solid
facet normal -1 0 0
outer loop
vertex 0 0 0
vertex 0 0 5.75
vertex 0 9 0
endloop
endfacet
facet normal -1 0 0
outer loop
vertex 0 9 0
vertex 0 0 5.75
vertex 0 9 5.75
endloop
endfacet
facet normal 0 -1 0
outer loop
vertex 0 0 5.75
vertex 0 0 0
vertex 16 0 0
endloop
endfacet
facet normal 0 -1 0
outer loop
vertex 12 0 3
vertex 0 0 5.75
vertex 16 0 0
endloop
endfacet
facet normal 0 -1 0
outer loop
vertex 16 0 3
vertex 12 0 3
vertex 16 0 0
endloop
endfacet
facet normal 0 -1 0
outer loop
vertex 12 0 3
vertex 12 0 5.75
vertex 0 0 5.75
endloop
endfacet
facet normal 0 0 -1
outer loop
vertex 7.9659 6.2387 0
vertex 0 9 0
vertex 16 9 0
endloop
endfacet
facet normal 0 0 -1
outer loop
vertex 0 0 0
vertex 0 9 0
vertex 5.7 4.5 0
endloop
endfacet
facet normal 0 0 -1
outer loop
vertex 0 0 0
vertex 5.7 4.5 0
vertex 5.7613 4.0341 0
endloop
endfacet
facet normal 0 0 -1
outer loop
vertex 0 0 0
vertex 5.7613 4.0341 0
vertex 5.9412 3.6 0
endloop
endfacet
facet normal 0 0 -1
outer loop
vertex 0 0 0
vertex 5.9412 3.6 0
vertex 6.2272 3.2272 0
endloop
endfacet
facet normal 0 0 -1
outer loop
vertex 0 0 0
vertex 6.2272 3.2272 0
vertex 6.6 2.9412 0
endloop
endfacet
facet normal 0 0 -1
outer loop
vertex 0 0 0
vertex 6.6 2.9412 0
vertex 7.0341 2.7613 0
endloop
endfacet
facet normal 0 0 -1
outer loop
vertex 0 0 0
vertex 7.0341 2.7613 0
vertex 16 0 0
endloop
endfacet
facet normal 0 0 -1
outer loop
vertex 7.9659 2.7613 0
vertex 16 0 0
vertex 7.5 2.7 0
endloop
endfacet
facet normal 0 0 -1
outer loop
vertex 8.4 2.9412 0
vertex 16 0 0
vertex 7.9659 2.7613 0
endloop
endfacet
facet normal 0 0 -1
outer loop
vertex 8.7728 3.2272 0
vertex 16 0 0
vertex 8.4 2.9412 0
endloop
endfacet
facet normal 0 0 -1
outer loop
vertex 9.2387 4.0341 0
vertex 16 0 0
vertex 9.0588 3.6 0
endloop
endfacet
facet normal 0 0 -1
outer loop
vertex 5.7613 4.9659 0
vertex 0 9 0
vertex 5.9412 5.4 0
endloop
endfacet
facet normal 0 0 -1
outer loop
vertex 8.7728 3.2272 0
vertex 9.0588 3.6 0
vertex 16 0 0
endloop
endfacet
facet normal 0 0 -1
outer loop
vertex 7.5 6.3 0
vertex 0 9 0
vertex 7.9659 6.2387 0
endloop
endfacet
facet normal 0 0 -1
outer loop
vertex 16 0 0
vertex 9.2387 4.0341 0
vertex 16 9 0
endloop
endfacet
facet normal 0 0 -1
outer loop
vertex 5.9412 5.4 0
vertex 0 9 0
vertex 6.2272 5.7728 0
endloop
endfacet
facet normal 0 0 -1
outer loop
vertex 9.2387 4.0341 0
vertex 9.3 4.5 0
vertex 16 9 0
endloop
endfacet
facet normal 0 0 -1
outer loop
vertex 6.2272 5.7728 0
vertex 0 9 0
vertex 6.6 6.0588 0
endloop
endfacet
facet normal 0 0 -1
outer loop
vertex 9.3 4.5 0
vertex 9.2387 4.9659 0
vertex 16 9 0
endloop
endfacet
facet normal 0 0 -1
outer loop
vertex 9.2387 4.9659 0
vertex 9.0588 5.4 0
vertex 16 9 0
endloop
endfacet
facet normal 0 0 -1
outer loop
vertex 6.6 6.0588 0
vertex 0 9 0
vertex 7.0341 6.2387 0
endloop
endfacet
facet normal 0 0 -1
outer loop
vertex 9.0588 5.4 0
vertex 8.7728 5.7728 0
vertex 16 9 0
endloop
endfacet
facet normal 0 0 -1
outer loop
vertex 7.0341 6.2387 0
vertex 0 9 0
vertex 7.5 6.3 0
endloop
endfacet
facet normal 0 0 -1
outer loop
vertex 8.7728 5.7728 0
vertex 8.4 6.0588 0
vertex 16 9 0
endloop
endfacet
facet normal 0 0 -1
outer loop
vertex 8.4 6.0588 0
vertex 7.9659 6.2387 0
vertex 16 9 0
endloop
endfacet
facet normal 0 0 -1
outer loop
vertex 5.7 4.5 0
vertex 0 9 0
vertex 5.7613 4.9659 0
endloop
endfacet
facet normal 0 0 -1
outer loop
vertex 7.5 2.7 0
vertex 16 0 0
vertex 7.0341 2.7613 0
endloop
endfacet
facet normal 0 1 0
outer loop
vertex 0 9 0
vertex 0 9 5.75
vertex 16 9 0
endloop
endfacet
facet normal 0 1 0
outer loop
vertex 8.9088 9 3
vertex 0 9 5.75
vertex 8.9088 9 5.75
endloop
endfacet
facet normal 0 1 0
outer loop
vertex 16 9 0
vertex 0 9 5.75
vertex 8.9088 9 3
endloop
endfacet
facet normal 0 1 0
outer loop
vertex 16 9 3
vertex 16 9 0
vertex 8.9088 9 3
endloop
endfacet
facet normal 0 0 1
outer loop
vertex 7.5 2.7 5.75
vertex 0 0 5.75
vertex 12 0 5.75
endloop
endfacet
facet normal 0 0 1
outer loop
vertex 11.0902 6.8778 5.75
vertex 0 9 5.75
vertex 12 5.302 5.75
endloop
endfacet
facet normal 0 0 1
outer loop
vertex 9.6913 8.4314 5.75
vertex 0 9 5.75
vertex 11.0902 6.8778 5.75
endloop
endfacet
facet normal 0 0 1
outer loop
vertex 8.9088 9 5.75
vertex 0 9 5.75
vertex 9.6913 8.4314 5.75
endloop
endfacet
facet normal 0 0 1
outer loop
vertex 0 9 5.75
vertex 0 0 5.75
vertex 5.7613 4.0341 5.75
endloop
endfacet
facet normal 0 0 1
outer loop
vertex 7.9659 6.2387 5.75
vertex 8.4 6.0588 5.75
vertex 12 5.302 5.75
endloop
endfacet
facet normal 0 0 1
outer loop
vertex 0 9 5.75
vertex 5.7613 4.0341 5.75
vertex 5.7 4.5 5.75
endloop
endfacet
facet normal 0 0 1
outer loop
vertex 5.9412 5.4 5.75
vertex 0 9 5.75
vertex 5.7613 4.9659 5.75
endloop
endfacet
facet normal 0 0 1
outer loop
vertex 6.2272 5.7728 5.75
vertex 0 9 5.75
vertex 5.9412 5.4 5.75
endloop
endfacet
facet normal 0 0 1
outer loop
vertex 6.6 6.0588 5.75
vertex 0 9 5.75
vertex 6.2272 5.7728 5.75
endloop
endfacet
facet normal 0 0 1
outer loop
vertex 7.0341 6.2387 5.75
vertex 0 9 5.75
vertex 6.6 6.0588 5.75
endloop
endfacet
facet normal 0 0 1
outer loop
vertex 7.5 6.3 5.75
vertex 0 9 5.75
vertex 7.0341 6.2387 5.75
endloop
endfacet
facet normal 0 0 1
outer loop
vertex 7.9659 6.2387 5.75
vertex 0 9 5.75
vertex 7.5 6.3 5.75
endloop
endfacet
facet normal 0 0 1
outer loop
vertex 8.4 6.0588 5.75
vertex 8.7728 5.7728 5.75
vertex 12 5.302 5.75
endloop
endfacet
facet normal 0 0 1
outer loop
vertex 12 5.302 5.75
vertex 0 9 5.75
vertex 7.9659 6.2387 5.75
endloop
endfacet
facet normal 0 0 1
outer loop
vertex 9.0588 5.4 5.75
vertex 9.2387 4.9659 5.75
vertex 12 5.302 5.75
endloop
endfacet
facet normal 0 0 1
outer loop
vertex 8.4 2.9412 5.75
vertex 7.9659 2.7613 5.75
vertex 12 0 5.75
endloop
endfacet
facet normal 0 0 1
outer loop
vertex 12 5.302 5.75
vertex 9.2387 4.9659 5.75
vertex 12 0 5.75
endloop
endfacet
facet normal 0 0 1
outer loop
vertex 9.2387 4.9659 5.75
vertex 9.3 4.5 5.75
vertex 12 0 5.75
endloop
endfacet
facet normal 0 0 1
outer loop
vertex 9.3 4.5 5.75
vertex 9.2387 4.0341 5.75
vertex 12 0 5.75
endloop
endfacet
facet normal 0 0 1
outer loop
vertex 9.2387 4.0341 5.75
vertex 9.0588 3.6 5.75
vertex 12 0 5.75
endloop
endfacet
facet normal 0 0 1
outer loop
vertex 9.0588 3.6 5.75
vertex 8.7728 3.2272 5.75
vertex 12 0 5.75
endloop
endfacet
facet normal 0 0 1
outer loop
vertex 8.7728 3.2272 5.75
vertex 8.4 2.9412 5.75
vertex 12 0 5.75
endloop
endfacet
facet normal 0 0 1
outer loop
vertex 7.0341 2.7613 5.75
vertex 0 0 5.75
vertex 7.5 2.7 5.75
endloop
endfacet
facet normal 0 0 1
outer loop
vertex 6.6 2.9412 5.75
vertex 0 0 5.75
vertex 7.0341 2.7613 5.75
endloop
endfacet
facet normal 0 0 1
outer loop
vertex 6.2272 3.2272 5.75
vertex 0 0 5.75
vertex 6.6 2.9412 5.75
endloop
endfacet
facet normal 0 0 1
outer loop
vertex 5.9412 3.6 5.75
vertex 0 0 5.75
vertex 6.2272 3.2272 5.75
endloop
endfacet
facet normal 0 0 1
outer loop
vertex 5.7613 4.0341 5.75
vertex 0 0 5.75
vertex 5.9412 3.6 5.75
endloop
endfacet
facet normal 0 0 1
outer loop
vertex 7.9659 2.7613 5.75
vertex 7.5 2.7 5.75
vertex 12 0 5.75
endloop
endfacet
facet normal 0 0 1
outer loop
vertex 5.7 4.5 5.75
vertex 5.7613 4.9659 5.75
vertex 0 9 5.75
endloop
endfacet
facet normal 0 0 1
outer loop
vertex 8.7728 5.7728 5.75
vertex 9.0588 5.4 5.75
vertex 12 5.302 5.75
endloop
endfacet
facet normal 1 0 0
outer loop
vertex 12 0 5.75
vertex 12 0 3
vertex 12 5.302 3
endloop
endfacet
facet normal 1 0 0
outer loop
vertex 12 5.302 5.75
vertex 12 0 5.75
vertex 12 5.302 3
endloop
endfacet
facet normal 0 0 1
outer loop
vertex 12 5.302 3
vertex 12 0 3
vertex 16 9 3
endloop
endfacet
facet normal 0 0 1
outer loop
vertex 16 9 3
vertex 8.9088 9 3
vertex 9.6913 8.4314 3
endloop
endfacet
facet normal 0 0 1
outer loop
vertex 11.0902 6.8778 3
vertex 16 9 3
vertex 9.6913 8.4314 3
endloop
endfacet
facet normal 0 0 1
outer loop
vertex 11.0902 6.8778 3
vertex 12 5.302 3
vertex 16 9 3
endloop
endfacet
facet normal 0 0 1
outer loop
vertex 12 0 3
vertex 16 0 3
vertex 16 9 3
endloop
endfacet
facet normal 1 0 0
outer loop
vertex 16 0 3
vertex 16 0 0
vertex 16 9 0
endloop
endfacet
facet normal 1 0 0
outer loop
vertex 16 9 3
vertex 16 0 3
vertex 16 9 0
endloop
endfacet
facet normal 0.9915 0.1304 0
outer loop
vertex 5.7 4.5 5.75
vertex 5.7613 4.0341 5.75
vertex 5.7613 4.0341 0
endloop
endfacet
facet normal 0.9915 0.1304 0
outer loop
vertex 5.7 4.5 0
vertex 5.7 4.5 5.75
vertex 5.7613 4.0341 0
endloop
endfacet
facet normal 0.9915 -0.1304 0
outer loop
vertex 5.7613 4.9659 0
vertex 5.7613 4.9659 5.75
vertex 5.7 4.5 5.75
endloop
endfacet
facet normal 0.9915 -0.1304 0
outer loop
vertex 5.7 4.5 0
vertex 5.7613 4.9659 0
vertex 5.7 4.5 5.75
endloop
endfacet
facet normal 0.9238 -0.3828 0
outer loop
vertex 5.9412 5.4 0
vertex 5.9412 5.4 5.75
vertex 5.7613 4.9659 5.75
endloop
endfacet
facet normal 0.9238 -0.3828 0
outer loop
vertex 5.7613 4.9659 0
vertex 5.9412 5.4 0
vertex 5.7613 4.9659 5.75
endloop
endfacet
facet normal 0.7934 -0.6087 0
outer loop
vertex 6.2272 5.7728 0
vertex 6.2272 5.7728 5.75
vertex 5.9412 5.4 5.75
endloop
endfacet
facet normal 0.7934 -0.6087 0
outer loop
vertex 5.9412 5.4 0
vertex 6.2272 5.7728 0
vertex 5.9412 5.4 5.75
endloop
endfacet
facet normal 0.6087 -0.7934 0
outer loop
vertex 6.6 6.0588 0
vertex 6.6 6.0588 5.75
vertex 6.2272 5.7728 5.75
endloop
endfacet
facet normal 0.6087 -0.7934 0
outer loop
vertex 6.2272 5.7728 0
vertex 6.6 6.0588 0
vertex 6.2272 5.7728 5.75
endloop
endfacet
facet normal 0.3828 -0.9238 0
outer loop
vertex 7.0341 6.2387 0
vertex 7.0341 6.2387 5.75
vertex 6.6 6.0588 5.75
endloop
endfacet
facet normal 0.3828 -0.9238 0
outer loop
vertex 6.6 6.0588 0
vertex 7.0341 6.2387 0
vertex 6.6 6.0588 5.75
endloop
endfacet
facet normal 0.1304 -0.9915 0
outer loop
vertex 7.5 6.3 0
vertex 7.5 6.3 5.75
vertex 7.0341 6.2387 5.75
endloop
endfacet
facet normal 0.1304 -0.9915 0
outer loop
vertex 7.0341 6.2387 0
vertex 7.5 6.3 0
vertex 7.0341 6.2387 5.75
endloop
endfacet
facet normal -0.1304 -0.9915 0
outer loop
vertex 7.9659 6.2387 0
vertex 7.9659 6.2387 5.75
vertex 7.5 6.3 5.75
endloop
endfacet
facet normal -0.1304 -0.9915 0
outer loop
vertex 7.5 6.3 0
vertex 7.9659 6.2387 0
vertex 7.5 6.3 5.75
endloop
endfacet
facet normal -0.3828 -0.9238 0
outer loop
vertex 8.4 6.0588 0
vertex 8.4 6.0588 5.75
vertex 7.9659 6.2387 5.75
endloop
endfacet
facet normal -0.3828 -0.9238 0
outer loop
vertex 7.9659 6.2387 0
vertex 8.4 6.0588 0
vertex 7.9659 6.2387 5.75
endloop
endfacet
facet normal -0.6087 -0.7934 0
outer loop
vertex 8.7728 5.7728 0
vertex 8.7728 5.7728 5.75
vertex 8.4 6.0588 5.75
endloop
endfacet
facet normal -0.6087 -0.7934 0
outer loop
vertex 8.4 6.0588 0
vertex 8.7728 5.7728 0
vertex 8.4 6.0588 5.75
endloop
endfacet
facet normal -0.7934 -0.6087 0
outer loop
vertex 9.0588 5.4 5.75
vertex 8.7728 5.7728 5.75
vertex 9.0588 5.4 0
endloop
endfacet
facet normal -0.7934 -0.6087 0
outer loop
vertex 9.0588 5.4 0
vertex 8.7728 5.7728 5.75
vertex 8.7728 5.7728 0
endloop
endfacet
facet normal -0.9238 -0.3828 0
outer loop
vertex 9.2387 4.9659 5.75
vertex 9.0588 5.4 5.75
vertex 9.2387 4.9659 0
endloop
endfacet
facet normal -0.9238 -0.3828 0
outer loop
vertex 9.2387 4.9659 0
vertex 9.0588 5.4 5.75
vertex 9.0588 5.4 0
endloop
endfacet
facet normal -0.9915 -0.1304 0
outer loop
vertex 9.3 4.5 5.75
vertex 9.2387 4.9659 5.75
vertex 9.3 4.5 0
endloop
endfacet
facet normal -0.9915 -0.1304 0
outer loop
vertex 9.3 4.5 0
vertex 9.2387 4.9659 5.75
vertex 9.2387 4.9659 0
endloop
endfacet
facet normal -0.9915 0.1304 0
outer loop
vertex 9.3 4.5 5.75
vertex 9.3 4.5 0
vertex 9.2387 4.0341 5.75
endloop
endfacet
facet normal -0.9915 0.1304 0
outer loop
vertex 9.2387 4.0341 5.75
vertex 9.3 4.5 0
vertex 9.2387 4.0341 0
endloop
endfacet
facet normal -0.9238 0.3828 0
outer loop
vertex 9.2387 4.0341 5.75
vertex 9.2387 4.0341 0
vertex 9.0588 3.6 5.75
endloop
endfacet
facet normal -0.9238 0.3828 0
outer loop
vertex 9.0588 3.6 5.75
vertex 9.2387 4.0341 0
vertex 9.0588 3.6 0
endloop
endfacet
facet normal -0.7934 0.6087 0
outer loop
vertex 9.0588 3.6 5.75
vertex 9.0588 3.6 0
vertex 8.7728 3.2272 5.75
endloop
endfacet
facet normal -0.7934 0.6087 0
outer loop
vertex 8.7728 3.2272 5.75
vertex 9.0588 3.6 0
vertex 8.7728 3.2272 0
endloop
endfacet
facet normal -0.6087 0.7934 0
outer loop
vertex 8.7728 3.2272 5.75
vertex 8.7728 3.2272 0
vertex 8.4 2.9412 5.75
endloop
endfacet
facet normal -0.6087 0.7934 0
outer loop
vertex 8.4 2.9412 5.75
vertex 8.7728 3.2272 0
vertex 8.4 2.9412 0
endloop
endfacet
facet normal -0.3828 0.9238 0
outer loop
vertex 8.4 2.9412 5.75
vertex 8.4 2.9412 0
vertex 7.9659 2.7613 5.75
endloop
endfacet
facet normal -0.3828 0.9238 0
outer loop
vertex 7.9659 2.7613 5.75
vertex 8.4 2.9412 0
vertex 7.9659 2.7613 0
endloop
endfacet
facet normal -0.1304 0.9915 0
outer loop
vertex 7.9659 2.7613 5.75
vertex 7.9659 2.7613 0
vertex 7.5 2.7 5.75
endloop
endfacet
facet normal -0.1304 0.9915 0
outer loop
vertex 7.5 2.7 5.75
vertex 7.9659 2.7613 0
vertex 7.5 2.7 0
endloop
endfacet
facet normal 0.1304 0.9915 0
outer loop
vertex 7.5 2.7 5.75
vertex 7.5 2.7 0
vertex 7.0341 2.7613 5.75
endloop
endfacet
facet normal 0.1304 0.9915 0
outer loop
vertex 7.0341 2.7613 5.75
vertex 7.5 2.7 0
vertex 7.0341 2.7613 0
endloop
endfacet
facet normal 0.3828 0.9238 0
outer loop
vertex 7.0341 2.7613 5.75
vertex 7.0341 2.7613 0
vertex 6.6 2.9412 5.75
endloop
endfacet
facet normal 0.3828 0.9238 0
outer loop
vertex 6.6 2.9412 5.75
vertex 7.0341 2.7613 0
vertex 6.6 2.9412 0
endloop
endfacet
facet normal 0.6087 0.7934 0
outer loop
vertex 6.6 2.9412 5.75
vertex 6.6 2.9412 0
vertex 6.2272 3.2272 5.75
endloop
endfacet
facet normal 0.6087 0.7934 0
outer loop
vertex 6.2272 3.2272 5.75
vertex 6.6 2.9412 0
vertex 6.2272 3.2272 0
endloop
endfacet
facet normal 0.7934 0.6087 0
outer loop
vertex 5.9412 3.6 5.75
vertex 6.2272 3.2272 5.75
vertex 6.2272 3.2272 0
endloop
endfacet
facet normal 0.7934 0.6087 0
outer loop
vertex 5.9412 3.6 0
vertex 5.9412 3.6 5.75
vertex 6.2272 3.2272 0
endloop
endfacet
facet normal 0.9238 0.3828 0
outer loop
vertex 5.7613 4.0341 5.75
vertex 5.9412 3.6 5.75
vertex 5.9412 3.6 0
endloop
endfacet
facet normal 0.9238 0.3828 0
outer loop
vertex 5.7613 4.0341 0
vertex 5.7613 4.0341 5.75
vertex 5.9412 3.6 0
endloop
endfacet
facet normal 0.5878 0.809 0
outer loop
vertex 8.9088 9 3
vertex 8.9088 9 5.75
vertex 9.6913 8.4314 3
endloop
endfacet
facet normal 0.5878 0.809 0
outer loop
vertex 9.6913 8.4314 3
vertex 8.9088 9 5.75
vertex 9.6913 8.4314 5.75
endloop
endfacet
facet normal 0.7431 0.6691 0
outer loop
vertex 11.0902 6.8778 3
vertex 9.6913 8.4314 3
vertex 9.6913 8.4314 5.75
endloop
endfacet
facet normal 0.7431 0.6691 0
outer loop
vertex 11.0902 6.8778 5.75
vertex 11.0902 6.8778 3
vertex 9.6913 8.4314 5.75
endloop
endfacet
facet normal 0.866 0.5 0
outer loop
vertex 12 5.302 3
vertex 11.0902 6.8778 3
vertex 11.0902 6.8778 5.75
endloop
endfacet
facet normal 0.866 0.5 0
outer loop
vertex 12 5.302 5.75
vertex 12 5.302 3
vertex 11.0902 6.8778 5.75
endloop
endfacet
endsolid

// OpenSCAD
difference()
{
	union()
	{
		cube([16,9,3]);
		intersection()
		{	
			cube([12,9,5.75]);
			translate([3,1,0]) cylinder( d=20,h=6 );
		}
	}

	union()
	{
		translate([7.5,4.5,0]) cylinder(d=3.6,h=10,$fn=24);
	}
}
